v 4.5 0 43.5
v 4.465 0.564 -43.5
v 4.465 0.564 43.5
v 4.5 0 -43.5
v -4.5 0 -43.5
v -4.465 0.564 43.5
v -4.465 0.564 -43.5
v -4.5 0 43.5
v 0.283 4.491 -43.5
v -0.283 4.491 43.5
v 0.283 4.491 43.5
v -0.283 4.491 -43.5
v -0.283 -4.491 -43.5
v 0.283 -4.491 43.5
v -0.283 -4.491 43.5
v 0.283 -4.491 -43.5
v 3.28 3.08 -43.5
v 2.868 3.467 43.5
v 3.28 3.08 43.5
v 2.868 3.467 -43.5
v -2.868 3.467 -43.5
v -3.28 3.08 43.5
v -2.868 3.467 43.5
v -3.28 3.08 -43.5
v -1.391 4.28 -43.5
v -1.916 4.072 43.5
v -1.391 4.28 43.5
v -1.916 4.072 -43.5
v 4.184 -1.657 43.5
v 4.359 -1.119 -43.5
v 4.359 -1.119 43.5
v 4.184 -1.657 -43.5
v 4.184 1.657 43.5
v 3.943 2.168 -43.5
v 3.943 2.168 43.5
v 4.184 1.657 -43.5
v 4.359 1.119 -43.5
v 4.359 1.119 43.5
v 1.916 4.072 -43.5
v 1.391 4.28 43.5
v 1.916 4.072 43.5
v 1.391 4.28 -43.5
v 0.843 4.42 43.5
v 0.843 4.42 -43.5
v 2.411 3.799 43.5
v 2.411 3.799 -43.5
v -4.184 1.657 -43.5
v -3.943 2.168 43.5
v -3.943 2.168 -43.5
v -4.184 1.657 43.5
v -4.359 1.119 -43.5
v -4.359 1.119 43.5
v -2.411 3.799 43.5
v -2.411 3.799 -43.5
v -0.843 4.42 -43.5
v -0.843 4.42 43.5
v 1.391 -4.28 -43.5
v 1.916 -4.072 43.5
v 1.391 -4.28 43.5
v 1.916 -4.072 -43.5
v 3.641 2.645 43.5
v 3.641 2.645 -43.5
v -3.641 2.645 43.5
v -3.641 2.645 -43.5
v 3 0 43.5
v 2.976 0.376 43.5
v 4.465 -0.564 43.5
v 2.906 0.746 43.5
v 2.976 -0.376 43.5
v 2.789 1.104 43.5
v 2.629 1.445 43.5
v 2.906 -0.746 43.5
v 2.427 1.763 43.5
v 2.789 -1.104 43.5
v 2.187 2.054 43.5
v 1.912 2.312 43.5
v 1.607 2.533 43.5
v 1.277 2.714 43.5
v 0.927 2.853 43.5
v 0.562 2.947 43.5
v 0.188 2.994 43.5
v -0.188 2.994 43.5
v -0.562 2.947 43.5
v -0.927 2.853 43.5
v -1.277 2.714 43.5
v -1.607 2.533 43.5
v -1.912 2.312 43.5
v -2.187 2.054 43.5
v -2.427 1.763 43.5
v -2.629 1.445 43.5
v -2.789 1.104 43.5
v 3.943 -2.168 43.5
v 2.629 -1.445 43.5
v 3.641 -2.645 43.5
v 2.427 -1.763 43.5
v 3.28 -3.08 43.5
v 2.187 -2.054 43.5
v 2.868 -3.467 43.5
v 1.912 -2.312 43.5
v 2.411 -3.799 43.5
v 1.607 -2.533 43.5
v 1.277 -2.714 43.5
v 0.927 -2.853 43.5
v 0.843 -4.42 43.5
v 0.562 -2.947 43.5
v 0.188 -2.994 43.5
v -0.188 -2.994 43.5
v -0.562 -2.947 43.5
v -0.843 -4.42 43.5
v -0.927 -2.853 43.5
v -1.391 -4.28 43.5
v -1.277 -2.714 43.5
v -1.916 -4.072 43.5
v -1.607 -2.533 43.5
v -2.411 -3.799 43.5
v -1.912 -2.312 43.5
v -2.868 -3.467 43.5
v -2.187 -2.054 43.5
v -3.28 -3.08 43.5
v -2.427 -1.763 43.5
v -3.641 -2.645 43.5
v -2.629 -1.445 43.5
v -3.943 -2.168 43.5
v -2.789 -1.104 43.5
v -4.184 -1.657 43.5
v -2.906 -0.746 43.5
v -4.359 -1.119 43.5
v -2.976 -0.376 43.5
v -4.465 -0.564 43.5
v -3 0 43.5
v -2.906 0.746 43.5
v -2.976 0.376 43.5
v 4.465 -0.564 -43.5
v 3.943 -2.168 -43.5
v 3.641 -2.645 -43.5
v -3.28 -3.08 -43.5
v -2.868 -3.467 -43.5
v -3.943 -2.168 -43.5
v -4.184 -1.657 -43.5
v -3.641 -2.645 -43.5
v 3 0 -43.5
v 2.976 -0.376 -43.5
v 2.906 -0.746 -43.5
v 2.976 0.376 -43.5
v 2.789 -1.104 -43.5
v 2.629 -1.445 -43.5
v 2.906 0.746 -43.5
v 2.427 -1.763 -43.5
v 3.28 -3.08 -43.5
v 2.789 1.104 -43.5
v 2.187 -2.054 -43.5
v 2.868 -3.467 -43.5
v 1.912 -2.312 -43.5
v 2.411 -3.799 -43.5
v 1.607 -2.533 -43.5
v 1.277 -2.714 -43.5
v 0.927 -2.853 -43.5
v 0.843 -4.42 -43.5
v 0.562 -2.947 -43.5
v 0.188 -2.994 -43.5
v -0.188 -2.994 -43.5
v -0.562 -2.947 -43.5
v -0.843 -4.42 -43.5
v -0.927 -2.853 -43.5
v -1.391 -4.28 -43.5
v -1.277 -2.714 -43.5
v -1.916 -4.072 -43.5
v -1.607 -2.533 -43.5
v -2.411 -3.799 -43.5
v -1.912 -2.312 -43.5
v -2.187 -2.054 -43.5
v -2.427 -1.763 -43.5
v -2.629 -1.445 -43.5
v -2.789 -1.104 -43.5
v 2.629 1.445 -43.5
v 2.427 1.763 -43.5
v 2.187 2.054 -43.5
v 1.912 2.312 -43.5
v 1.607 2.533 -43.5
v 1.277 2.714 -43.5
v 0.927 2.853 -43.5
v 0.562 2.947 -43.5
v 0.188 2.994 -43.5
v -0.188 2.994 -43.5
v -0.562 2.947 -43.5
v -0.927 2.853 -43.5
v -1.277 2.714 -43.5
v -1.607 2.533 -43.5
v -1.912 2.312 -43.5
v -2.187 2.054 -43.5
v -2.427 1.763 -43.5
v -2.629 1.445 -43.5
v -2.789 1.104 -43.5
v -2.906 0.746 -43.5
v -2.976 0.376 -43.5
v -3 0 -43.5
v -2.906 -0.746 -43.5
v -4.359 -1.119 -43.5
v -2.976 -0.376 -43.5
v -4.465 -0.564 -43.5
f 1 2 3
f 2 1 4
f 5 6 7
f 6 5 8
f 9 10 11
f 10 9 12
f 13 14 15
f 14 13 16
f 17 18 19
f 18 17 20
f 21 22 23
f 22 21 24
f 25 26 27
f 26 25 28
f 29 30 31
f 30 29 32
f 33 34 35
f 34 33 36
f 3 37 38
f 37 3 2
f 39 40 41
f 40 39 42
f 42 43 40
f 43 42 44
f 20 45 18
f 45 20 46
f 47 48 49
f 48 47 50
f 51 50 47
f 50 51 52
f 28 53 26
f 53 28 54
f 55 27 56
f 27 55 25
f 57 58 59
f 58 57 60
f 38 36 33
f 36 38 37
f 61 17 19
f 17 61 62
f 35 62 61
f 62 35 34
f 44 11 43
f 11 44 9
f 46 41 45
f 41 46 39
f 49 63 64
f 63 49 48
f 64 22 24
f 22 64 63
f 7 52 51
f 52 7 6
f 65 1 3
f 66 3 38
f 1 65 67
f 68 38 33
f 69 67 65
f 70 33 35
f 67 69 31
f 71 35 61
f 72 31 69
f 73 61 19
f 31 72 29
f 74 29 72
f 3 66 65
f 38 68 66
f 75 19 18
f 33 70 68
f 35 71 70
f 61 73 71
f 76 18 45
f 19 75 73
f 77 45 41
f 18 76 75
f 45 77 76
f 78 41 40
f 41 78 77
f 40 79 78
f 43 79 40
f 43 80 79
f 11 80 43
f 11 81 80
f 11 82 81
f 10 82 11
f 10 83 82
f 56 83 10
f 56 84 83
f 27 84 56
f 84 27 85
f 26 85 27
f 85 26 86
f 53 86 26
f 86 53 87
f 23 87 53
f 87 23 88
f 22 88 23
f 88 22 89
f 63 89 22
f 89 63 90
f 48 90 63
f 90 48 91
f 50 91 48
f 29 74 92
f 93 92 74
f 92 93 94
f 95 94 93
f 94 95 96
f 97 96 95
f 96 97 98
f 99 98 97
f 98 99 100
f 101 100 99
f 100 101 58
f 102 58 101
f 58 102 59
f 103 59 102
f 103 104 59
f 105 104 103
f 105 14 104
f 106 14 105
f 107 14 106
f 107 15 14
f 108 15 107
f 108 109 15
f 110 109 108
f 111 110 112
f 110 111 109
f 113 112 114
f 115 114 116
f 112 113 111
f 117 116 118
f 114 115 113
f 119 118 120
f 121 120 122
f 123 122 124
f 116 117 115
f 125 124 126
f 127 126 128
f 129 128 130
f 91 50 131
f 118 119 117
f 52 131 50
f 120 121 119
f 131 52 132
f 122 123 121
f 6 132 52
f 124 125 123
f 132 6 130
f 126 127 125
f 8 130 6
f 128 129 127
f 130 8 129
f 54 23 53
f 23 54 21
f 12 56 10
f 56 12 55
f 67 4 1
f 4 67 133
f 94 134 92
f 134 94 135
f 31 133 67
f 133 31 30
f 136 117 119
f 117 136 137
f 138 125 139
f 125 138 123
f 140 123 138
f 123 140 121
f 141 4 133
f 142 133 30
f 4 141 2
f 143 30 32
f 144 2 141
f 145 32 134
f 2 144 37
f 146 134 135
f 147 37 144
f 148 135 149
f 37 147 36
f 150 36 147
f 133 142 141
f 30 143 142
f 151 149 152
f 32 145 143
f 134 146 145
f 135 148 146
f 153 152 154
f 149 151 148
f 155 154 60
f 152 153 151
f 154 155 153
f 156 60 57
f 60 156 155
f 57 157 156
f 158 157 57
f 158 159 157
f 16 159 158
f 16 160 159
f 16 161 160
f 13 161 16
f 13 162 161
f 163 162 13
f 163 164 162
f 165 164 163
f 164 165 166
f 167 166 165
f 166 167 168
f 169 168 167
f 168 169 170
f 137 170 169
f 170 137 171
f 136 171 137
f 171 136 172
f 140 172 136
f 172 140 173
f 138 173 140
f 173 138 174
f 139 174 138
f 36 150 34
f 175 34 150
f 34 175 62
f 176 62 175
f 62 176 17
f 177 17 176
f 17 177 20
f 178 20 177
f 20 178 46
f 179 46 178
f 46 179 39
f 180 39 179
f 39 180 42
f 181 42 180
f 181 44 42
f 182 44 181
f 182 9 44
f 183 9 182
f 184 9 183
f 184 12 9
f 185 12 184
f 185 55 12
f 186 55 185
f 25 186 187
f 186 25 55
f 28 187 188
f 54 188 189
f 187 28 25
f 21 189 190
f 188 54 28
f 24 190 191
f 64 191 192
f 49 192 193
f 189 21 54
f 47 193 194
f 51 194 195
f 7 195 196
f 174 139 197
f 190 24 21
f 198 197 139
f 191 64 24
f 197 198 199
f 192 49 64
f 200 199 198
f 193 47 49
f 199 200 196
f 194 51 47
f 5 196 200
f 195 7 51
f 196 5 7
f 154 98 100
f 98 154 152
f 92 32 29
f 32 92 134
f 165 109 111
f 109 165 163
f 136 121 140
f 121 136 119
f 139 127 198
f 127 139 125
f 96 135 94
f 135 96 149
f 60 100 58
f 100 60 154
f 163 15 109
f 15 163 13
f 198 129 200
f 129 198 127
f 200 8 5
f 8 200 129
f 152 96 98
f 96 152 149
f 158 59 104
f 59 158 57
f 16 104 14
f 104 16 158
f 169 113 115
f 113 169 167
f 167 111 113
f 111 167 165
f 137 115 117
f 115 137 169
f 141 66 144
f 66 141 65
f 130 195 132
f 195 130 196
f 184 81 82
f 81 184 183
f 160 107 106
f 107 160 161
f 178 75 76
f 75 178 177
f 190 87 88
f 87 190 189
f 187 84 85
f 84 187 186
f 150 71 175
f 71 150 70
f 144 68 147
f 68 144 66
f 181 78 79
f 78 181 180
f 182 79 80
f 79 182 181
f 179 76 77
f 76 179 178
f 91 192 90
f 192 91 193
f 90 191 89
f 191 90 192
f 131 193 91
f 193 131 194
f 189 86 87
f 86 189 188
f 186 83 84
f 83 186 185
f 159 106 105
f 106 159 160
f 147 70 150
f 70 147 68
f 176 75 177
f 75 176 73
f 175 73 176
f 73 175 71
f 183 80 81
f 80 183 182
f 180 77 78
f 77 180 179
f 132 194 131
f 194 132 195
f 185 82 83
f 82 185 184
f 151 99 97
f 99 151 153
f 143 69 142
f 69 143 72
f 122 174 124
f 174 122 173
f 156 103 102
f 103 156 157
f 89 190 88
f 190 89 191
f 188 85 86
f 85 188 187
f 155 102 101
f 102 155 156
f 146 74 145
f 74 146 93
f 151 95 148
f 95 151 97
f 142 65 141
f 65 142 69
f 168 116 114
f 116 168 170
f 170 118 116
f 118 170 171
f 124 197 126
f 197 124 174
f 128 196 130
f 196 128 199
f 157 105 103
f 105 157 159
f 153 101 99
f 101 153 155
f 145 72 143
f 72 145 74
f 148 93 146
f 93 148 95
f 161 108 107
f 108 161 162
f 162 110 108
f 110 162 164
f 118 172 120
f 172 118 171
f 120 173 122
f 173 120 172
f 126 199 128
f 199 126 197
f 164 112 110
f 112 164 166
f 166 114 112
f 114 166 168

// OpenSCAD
$fn = 50;


difference() {
	union() {
		translate(v = [0, 0, -43.5000000000]) {
			cylinder(h = 87, r = 4.5000000000);
		}
	}
	union() {
		translate(v = [0, 0, -100.0000000000]) {
			cylinder(h = 200, r = 3.0000000000);
		}
	}
}
